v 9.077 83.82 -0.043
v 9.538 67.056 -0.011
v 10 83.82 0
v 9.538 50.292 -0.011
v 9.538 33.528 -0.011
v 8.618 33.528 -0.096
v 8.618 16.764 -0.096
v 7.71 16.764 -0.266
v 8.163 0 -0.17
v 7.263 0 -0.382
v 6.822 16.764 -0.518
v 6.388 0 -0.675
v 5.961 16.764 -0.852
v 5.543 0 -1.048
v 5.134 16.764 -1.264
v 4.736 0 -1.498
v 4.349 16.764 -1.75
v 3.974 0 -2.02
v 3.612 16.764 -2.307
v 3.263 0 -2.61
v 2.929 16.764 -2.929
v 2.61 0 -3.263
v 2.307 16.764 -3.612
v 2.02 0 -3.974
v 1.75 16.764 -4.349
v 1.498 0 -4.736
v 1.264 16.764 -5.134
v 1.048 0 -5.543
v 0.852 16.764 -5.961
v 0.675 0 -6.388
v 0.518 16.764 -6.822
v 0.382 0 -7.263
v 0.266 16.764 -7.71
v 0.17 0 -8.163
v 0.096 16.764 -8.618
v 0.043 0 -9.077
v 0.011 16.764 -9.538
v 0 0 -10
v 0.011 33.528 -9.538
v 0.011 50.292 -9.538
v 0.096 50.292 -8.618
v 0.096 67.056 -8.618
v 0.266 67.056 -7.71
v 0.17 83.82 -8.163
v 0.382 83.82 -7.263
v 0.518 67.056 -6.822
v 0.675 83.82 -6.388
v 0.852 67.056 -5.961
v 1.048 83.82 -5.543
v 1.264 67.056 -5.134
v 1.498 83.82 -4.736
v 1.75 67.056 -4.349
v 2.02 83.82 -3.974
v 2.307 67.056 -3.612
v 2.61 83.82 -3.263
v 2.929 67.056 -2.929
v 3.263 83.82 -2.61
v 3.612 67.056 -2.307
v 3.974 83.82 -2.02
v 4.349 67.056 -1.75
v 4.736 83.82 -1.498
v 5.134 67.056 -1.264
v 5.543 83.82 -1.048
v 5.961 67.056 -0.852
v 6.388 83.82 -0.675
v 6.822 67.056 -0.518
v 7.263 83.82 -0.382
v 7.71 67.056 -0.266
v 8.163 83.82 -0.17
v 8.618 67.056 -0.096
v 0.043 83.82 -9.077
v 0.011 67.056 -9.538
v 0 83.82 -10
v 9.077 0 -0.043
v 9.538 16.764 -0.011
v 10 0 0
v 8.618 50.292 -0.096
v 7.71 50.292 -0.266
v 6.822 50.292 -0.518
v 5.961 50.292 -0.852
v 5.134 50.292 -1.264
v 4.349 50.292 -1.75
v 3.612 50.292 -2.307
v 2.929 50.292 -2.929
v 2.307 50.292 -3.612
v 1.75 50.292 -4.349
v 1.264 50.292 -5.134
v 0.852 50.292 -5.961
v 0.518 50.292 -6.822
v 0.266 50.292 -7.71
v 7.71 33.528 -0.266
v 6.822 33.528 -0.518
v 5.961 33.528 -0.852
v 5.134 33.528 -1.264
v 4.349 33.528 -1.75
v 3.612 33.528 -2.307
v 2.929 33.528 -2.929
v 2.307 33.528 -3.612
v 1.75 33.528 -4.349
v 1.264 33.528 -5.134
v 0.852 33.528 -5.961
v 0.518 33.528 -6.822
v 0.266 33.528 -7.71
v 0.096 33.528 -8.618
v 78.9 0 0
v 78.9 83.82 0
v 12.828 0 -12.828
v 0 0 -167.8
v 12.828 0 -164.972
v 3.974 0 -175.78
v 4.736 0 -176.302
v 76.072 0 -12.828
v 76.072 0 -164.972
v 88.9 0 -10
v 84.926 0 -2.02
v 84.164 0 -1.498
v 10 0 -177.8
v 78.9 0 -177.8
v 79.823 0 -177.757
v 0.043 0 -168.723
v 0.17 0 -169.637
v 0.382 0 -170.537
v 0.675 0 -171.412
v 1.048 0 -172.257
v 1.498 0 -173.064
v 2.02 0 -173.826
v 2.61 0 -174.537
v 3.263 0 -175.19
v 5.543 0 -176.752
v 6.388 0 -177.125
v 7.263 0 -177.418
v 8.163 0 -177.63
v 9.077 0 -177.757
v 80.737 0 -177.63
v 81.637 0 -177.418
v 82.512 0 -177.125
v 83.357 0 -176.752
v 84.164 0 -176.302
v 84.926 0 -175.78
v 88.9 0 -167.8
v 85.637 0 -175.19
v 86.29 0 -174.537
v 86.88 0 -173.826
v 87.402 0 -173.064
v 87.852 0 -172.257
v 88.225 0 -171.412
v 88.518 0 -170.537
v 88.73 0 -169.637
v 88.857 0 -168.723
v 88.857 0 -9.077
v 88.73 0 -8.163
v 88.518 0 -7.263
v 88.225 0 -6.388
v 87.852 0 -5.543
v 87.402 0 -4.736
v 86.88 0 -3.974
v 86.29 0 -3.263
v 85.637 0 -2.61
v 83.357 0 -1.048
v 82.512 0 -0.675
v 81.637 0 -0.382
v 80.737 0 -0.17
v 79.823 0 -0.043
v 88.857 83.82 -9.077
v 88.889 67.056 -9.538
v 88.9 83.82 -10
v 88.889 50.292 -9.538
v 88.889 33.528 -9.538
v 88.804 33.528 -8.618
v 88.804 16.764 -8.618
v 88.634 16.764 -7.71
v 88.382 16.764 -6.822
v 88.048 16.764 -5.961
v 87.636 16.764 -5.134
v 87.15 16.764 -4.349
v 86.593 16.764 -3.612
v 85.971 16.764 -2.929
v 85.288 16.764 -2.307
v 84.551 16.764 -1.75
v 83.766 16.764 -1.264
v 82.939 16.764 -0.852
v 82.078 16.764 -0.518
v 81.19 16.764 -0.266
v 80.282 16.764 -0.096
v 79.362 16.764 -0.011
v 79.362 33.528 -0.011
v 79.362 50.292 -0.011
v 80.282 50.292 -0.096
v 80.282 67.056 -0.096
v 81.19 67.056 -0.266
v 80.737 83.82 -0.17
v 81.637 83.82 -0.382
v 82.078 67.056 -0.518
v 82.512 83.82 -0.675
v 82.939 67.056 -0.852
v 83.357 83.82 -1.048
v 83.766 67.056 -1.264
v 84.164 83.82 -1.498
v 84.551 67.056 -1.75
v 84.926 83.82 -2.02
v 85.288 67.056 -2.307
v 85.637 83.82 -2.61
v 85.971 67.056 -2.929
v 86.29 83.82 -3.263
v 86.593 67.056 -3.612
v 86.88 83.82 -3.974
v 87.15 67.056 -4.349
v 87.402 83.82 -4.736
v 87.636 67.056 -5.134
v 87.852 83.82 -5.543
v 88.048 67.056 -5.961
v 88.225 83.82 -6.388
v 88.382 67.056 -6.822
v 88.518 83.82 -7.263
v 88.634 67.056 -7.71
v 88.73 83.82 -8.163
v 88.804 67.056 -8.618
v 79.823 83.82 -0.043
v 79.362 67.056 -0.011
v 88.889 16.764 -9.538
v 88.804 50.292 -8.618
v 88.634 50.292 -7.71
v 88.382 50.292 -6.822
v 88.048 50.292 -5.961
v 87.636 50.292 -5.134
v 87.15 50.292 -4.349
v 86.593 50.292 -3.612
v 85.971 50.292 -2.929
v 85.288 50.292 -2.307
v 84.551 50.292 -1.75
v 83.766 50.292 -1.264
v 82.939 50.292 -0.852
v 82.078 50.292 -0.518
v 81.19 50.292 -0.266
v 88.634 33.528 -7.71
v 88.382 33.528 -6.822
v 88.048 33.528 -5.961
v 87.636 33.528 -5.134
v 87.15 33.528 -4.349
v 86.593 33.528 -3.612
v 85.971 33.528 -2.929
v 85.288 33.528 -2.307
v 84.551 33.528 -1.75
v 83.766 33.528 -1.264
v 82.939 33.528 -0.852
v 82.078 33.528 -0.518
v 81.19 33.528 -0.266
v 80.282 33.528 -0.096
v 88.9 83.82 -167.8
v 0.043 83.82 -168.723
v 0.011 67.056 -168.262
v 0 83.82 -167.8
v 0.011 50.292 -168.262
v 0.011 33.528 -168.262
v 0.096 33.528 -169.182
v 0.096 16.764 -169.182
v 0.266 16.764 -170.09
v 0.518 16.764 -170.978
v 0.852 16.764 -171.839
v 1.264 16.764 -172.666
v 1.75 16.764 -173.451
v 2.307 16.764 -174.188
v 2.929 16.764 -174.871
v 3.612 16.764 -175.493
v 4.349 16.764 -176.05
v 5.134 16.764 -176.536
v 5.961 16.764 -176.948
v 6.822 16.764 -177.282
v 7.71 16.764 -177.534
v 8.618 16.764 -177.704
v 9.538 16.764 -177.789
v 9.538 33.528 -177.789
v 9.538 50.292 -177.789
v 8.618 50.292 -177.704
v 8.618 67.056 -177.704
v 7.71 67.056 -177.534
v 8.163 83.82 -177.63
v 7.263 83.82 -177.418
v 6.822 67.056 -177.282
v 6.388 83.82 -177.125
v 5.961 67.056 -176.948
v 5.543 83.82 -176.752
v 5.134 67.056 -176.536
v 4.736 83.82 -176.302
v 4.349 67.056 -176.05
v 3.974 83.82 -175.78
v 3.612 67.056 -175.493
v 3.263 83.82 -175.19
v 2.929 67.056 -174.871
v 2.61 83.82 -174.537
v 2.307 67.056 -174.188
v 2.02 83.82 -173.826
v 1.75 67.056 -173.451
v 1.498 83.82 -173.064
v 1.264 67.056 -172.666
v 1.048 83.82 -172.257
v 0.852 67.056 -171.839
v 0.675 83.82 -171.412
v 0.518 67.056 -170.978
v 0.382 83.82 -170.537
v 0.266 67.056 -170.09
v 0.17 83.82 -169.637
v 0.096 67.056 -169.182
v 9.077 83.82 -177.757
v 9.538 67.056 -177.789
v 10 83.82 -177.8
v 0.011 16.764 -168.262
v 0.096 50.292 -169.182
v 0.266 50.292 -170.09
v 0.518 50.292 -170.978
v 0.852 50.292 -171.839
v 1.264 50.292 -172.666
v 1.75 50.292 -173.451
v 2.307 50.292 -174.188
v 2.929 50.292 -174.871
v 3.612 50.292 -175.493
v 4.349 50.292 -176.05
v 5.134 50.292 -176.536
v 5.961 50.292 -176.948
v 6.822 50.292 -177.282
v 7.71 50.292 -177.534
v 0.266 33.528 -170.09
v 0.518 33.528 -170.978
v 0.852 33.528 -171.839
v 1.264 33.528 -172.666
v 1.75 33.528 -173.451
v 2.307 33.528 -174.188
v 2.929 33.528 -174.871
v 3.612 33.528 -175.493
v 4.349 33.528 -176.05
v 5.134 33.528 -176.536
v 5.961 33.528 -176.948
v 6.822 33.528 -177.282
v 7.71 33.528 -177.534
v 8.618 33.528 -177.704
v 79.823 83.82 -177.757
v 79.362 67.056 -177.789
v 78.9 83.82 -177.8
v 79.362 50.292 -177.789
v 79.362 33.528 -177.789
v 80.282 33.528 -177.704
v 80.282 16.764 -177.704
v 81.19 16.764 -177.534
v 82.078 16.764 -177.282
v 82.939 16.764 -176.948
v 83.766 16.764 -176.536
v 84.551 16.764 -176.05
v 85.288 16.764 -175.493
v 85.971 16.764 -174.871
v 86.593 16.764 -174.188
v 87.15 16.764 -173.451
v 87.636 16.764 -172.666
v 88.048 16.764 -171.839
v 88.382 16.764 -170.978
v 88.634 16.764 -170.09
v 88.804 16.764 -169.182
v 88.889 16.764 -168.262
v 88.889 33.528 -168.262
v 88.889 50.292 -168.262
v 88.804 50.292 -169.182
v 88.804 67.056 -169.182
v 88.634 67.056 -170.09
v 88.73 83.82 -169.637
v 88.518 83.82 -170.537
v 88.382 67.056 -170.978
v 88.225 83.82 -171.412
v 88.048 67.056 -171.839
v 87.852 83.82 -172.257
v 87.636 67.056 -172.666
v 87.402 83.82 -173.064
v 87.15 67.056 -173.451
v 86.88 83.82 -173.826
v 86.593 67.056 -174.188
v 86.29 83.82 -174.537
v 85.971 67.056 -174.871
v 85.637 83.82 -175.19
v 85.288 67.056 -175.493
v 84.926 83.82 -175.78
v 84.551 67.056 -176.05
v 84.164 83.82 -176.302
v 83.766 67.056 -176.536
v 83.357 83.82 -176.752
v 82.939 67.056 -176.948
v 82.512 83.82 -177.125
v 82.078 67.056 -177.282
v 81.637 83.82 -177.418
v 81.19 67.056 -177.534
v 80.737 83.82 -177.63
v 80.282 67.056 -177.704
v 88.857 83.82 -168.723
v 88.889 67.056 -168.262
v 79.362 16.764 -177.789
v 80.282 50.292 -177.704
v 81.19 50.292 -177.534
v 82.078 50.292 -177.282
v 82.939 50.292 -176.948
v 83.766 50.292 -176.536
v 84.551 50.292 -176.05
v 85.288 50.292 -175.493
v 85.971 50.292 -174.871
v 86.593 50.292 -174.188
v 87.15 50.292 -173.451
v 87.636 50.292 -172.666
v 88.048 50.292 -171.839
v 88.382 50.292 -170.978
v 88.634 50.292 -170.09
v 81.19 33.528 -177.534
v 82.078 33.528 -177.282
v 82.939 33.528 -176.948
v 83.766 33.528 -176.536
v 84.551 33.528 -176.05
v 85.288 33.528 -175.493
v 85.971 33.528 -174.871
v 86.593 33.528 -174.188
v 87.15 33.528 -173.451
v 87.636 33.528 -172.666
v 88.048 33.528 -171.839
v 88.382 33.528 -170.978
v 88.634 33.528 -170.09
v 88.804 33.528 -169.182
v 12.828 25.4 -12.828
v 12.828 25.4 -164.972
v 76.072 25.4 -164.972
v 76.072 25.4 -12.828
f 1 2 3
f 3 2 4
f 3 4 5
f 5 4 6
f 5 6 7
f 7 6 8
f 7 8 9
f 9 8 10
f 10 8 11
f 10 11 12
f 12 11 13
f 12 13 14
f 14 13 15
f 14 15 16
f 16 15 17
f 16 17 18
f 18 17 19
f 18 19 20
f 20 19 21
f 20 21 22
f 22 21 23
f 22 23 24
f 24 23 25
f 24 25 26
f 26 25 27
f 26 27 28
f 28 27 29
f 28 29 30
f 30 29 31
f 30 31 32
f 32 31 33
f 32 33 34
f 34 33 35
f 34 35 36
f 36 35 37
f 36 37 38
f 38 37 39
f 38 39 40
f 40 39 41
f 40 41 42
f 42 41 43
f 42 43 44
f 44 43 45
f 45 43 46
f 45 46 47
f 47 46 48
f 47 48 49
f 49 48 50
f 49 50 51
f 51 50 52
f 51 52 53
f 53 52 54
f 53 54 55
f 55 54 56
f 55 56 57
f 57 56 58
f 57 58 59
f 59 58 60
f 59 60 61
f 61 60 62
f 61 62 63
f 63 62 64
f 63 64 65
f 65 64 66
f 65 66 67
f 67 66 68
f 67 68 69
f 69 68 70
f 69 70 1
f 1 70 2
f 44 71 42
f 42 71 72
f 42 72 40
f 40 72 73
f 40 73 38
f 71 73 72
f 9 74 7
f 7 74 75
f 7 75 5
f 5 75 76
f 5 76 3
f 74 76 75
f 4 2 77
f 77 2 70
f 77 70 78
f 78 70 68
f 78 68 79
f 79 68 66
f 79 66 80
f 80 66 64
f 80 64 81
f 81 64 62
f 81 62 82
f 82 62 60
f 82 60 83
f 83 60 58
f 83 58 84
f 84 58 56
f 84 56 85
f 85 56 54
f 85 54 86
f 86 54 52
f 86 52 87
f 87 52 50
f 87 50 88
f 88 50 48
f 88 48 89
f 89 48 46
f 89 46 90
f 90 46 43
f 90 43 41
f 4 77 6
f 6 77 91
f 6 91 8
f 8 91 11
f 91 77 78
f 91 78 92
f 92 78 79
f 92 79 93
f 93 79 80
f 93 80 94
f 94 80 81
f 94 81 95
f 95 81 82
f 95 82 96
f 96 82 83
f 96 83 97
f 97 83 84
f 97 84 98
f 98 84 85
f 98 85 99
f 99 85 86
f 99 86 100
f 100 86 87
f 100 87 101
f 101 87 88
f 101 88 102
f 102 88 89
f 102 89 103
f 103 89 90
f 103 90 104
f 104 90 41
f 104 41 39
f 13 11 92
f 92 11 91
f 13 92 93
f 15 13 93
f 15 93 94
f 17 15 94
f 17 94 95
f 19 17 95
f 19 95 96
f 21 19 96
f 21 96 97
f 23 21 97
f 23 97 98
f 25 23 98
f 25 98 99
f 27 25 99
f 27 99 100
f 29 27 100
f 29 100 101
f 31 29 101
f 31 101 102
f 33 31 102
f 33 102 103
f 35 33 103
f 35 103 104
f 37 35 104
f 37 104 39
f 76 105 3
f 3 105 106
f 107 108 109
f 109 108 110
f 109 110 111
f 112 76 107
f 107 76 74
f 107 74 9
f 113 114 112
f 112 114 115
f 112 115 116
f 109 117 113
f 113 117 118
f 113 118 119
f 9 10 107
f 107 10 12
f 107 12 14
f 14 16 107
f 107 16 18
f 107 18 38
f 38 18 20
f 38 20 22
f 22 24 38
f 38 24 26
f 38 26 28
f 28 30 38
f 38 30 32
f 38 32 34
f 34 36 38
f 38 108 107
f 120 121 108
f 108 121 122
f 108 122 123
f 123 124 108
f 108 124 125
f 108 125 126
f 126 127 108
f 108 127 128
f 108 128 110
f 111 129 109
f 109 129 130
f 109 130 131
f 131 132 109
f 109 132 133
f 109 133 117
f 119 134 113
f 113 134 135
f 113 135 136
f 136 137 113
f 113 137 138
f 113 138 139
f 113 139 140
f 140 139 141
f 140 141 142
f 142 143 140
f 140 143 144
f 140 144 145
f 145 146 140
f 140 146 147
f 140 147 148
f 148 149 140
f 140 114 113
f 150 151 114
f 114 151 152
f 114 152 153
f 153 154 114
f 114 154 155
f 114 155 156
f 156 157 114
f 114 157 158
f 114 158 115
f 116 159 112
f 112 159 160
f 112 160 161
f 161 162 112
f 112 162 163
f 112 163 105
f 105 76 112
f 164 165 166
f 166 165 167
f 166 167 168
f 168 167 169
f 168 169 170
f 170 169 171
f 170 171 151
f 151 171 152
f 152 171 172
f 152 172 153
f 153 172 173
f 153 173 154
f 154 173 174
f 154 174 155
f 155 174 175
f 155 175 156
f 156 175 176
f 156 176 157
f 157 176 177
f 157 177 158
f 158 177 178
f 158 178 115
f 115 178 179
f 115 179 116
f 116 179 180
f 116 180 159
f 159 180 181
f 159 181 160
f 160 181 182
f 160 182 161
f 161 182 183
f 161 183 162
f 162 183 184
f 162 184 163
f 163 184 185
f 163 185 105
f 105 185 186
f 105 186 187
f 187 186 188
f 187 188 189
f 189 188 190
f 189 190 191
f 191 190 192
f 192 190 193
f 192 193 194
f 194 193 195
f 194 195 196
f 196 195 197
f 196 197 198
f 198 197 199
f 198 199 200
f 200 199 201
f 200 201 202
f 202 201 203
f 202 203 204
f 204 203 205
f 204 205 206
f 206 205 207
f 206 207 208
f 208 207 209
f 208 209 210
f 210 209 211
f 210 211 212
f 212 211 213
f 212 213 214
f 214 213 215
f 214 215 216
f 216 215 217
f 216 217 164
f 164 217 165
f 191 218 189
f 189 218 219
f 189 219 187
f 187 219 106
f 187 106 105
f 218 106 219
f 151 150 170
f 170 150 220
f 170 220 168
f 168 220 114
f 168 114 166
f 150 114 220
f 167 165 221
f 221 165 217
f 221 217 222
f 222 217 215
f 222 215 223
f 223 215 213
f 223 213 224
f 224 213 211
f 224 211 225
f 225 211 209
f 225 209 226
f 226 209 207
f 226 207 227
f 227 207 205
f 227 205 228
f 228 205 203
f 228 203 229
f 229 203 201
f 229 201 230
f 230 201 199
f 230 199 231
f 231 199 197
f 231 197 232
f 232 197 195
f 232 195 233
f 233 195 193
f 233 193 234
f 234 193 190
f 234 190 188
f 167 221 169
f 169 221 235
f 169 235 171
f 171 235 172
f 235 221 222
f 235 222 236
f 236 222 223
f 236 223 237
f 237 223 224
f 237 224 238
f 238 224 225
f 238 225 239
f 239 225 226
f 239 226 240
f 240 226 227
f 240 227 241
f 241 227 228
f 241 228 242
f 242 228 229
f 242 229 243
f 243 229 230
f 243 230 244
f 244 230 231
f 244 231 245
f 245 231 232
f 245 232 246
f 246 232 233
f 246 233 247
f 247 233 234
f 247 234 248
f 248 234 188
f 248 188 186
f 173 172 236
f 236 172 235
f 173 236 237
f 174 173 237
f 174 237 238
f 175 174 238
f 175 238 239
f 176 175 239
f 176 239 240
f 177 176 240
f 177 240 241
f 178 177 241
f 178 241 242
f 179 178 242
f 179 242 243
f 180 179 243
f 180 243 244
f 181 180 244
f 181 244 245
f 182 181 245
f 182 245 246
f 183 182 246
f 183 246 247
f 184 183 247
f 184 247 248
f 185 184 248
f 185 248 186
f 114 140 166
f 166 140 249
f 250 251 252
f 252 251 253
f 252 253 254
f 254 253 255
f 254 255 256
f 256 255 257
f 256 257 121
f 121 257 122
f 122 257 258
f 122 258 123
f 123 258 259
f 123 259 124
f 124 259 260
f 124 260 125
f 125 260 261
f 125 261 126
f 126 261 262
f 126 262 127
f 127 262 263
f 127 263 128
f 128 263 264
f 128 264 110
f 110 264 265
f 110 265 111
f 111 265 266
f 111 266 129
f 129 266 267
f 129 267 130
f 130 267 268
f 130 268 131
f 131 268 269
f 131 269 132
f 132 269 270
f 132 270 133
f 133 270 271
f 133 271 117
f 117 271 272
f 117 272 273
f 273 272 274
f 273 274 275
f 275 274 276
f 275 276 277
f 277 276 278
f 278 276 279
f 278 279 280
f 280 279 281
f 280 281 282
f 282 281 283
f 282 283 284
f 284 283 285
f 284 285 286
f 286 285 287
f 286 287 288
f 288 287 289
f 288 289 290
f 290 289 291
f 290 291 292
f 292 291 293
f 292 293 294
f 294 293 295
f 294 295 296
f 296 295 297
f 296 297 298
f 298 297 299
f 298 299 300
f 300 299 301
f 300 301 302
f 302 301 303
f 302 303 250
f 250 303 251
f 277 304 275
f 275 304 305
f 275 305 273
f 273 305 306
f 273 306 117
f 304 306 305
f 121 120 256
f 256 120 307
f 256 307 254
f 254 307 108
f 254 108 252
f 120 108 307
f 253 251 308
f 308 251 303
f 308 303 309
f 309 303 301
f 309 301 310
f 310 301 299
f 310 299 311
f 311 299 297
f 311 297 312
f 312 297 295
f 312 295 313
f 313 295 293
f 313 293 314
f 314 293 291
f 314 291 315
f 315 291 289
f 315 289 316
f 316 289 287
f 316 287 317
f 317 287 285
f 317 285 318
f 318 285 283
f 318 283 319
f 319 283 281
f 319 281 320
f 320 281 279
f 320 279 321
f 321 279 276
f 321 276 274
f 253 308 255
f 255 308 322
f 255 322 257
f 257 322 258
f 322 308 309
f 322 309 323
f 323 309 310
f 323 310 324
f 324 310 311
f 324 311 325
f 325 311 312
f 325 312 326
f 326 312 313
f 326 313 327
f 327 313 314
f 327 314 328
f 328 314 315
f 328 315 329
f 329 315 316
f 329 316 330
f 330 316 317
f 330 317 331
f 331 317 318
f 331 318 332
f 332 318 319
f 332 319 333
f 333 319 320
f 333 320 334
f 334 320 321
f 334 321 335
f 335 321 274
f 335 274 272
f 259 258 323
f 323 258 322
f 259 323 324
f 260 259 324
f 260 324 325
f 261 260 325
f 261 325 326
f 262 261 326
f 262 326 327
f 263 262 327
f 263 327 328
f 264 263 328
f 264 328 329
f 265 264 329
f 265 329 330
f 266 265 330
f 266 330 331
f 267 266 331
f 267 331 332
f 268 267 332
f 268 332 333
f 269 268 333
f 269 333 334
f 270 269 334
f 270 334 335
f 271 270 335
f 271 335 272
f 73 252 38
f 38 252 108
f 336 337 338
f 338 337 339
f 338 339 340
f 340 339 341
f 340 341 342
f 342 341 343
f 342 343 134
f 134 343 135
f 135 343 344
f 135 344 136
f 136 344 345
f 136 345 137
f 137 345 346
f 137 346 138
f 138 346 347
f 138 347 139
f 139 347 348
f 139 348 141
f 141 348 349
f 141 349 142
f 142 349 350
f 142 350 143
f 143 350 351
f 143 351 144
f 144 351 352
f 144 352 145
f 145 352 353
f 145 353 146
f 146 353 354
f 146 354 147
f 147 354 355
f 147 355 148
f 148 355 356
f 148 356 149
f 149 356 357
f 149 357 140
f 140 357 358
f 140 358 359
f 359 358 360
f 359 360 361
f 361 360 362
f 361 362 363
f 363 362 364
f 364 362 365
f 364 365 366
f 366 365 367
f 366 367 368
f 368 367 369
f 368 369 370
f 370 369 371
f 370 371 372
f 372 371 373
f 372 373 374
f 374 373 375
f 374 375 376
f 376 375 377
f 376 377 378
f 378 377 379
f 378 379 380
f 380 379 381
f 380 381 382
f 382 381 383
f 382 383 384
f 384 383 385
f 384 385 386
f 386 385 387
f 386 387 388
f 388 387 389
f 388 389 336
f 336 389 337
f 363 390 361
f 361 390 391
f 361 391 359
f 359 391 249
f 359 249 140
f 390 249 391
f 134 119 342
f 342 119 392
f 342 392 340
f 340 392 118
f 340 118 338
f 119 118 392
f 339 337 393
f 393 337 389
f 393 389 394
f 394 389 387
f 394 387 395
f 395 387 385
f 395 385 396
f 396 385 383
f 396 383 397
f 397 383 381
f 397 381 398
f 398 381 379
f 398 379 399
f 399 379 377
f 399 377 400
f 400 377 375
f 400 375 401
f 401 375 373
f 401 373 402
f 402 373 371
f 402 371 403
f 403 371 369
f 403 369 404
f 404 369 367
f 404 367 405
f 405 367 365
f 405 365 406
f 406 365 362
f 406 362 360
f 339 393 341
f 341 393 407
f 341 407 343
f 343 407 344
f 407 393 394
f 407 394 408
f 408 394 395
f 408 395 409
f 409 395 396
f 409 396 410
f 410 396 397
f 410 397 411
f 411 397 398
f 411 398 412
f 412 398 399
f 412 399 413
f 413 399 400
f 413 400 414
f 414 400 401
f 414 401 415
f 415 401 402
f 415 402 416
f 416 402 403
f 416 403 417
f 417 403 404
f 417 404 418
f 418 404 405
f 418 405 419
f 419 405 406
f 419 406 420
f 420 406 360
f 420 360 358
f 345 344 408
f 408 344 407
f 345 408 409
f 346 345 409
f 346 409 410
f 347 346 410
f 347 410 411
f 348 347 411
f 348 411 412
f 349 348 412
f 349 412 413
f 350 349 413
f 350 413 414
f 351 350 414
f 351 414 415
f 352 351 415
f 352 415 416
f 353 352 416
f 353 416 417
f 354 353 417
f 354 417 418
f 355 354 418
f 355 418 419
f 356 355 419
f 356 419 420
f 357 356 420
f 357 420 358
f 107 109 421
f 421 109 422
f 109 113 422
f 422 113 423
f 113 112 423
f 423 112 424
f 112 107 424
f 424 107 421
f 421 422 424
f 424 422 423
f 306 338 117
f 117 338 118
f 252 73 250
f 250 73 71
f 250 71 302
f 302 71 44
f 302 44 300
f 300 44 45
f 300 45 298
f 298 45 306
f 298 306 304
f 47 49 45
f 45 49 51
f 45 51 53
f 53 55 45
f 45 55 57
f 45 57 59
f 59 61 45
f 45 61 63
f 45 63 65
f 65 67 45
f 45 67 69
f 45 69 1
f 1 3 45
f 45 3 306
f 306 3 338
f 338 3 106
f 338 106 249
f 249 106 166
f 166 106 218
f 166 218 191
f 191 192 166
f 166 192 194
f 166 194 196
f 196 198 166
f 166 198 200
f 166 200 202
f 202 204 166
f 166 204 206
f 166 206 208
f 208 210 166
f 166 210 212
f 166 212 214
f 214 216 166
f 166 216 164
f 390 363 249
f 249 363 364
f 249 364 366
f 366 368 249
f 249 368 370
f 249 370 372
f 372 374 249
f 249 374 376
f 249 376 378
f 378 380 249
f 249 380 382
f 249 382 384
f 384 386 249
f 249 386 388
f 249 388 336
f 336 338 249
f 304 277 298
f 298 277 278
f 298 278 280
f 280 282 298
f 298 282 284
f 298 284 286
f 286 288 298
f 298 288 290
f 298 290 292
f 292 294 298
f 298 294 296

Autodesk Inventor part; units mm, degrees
ref_plane "YZ Plane" through (0, 0, 0) normal (1, 0, 0) x (0, 1, 0)
ref_plane "XZ Plane" through (0, 0, 0) normal (0, 1, 0) x (-1, 0, 0)
ref_plane "XY Plane" through (0, 0, 0) normal (0, 0, 1) x (1, 0, 0)
sketch "Sketch1" plane through (0, 0, 0) normal (0, 1, 0) x (-1, 0, 0)
  line L0 (0, 0) -> (-88.9, 0)
  line L1 (-88.9, 0) -> (-88.9, -177.8)
  line L2 (-88.9, -177.8) -> (0, -177.8)
  line L3 (0, -177.8) -> (0, 0)
  dimension "d0" = 177.8
  dimension "d1" = 88.9
extrude "Extrusion1" add sketch "Sketch1" along normal blind 83.82
sketch "Sketch2" plane through (0, 0, 0) normal (0, -1, 0) x (1, 0, 0)
  point P0 (0, 0)
sketch "Sketch3" plane through (0, 0, 0) normal (0, -1, 0) x (1, 0, 0)
  line L0 (88.9, 0) -> (88.9, -177.8) projected
  line L1 (0, 0) -> (88.9, 0) projected
  line L2 (0, -177.8) -> (0, 0) projected
  line L3 (88.9, -177.8) -> (0, -177.8) projected
  line L4 (76.0718, -164.9718) -> (76.0718, -12.8282)
  line L5 (76.0718, -12.8282) -> (12.8282, -12.8282)
  line L6 (12.8282, -12.8282) -> (12.8282, -164.9718)
  line L7 (12.8282, -164.9718) -> (76.0718, -164.9718)
extrude "Extrusion2" cut sketch "Sketch3" against normal blind 25.4 contours L7 L6 L5 L4
fillet "Fillet1" radius 10 4 edges at (88.9, 41.91, -177.8) (0, 41.91, -177.8) (88.9, 41.91, 0) (0, 41.91, 0)
properties part number "Capstone"
